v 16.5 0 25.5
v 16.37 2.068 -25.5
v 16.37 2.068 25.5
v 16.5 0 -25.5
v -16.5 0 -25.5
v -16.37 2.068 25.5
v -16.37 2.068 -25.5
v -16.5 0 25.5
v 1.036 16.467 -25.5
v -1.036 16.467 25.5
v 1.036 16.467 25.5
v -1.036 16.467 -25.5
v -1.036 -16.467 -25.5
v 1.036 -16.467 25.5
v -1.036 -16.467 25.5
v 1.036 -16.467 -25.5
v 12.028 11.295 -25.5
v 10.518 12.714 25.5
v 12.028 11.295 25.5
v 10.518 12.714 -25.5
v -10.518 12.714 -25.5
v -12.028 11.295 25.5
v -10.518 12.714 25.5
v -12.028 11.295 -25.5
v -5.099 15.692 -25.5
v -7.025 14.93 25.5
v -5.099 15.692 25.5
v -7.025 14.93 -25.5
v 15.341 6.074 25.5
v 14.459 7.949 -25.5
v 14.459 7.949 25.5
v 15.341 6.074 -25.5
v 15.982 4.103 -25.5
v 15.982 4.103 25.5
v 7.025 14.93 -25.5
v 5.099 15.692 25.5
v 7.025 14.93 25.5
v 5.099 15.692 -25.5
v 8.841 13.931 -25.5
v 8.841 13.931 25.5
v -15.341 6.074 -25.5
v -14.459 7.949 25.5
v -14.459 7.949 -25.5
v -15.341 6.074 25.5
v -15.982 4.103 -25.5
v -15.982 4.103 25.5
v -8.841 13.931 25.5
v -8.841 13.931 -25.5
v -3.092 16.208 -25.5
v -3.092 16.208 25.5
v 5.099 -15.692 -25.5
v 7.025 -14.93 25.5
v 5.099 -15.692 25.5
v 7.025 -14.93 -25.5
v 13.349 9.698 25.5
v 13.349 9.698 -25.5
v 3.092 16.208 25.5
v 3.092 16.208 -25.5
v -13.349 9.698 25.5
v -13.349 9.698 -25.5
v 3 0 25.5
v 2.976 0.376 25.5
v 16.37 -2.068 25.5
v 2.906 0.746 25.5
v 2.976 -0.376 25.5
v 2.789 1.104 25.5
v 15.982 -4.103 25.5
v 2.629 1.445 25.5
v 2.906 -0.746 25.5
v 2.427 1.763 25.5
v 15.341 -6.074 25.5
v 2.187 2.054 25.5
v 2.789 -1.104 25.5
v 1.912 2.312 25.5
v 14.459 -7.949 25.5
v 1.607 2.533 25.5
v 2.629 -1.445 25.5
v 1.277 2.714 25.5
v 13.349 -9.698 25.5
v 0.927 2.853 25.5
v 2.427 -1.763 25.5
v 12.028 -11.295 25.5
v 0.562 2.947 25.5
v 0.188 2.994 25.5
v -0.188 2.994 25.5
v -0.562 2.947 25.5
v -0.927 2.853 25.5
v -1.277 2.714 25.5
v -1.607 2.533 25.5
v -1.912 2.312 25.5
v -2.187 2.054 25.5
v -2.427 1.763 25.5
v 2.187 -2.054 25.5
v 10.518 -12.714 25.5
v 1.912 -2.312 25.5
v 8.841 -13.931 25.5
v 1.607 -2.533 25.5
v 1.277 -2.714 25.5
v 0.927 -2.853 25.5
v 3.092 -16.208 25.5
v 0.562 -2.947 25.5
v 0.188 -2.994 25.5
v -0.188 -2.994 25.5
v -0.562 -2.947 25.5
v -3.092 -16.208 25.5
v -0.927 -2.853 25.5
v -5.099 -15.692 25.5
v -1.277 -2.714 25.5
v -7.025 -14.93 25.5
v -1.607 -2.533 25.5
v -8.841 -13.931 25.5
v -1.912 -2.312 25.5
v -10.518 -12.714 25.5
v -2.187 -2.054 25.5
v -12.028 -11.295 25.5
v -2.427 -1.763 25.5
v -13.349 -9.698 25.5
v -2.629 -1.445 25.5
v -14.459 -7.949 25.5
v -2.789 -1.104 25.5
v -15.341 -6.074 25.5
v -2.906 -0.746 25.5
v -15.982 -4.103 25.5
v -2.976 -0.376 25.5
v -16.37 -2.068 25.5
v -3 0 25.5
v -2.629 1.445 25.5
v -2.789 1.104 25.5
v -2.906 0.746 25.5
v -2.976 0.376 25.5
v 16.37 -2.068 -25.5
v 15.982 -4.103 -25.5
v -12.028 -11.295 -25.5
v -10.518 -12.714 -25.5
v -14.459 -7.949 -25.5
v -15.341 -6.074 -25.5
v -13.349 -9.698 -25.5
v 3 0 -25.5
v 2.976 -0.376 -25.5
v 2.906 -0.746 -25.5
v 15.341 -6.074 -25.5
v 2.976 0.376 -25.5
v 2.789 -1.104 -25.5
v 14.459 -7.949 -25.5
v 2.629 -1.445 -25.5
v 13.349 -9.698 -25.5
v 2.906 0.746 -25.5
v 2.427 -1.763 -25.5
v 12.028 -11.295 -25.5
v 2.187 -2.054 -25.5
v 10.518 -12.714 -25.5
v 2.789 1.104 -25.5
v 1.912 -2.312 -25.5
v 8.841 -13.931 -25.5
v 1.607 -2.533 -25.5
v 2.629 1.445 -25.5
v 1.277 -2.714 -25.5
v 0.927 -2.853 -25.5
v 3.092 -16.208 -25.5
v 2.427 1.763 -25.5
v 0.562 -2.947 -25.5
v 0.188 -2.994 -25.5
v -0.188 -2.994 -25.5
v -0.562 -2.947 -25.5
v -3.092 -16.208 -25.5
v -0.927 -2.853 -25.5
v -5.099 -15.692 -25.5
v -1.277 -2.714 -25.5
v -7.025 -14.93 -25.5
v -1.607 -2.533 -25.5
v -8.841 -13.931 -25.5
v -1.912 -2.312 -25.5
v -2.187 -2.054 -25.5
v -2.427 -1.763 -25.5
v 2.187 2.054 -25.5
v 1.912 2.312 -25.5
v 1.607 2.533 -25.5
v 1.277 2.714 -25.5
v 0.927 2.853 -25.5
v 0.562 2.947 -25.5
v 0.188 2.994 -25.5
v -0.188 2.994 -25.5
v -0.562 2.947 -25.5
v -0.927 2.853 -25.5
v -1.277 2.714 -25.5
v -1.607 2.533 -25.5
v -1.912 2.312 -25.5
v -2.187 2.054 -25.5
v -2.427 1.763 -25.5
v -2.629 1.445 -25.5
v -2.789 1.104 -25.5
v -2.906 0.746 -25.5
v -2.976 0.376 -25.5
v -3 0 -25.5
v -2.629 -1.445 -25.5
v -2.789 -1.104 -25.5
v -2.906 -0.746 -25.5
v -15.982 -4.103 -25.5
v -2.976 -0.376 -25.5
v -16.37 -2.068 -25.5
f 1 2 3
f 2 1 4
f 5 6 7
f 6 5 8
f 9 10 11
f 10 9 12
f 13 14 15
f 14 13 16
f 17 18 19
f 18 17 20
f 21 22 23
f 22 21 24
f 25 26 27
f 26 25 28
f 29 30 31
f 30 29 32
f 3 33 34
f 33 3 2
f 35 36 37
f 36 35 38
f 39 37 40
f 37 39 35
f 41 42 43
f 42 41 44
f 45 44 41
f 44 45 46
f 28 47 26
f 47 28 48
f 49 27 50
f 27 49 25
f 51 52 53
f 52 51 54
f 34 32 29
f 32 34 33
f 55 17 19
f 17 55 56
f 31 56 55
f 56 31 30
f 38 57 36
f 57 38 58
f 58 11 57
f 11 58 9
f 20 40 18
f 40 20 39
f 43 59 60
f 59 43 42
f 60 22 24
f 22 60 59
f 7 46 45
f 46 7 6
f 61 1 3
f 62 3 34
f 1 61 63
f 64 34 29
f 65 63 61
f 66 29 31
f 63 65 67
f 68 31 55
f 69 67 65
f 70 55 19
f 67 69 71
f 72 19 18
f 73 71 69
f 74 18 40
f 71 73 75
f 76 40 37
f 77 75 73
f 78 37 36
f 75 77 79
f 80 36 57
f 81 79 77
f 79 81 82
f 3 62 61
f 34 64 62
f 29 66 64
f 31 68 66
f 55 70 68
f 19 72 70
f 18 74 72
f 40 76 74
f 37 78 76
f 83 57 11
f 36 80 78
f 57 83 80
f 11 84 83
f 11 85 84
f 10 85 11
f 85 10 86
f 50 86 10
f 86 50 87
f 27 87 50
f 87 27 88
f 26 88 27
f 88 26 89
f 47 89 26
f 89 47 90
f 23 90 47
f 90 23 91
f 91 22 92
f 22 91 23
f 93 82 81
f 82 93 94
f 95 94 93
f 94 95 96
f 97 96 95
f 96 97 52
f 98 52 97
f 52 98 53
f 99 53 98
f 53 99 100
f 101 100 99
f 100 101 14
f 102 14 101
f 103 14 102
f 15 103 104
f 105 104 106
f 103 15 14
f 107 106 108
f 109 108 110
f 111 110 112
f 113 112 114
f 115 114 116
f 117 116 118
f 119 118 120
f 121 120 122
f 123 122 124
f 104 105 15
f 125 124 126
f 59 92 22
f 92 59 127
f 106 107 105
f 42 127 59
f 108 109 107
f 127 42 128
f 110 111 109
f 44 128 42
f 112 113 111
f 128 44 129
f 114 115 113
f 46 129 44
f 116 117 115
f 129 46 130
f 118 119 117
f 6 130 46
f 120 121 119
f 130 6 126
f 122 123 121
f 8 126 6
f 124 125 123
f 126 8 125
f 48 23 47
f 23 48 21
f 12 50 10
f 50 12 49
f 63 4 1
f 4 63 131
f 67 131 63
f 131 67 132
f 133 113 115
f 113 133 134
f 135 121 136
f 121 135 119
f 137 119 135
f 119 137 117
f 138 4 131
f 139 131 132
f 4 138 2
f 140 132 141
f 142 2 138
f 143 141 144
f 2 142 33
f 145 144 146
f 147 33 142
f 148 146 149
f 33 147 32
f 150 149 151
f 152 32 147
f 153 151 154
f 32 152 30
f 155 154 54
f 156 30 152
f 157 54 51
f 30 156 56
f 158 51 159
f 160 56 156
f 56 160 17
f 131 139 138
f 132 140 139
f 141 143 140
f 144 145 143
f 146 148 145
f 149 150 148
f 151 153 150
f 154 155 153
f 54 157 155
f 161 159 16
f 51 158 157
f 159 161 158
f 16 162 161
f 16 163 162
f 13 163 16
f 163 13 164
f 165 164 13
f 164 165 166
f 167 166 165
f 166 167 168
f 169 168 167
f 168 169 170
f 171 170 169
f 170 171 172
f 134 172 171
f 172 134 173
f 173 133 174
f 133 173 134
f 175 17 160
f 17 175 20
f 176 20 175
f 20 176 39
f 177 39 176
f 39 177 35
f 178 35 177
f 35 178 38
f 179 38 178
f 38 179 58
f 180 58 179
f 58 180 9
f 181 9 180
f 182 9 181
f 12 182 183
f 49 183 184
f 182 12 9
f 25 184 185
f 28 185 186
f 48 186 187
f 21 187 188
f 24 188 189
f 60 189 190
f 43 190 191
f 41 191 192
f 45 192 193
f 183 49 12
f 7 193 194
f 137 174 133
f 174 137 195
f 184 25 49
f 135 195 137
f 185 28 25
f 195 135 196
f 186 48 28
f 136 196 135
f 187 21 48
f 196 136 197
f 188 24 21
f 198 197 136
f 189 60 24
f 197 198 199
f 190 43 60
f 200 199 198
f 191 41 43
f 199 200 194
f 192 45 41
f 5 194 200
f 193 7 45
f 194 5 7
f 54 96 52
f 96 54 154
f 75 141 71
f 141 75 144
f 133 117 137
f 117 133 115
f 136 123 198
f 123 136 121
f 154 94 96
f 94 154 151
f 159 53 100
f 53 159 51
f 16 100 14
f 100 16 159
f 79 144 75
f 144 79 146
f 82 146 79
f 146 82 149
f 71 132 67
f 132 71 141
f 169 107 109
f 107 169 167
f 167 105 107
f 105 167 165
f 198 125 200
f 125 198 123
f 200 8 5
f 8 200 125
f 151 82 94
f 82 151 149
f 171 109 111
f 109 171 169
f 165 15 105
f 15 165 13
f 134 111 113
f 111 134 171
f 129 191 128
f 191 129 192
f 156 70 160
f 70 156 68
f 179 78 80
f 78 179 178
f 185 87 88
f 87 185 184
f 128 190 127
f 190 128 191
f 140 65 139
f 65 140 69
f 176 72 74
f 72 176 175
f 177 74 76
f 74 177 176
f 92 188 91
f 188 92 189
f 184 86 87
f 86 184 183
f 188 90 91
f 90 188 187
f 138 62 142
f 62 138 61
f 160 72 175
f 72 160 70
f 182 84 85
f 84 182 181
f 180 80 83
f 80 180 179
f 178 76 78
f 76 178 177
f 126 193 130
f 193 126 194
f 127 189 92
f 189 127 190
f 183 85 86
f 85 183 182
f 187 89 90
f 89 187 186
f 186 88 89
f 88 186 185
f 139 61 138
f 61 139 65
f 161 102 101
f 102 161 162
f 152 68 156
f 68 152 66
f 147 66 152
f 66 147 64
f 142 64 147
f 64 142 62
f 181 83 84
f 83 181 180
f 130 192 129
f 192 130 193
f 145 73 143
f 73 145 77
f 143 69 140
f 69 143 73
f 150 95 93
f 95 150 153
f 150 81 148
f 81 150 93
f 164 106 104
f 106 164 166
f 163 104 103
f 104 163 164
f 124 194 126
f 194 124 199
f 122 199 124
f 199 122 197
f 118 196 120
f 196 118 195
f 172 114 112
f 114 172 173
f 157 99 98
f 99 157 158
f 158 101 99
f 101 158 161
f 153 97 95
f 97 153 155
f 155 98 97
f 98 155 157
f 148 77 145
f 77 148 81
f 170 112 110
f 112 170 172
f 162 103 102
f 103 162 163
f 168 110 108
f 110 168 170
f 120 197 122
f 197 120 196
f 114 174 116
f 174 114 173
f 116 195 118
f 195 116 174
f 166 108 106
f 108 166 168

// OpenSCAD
$fn = 50;


difference() {
	union() {
		translate(v = [0, 0, -25.5000000000]) {
			cylinder(h = 51, r = 16.5000000000);
		}
	}
	union() {
		translate(v = [0, 0, -100.0000000000]) {
			cylinder(h = 200, r = 3);
		}
	}
}
